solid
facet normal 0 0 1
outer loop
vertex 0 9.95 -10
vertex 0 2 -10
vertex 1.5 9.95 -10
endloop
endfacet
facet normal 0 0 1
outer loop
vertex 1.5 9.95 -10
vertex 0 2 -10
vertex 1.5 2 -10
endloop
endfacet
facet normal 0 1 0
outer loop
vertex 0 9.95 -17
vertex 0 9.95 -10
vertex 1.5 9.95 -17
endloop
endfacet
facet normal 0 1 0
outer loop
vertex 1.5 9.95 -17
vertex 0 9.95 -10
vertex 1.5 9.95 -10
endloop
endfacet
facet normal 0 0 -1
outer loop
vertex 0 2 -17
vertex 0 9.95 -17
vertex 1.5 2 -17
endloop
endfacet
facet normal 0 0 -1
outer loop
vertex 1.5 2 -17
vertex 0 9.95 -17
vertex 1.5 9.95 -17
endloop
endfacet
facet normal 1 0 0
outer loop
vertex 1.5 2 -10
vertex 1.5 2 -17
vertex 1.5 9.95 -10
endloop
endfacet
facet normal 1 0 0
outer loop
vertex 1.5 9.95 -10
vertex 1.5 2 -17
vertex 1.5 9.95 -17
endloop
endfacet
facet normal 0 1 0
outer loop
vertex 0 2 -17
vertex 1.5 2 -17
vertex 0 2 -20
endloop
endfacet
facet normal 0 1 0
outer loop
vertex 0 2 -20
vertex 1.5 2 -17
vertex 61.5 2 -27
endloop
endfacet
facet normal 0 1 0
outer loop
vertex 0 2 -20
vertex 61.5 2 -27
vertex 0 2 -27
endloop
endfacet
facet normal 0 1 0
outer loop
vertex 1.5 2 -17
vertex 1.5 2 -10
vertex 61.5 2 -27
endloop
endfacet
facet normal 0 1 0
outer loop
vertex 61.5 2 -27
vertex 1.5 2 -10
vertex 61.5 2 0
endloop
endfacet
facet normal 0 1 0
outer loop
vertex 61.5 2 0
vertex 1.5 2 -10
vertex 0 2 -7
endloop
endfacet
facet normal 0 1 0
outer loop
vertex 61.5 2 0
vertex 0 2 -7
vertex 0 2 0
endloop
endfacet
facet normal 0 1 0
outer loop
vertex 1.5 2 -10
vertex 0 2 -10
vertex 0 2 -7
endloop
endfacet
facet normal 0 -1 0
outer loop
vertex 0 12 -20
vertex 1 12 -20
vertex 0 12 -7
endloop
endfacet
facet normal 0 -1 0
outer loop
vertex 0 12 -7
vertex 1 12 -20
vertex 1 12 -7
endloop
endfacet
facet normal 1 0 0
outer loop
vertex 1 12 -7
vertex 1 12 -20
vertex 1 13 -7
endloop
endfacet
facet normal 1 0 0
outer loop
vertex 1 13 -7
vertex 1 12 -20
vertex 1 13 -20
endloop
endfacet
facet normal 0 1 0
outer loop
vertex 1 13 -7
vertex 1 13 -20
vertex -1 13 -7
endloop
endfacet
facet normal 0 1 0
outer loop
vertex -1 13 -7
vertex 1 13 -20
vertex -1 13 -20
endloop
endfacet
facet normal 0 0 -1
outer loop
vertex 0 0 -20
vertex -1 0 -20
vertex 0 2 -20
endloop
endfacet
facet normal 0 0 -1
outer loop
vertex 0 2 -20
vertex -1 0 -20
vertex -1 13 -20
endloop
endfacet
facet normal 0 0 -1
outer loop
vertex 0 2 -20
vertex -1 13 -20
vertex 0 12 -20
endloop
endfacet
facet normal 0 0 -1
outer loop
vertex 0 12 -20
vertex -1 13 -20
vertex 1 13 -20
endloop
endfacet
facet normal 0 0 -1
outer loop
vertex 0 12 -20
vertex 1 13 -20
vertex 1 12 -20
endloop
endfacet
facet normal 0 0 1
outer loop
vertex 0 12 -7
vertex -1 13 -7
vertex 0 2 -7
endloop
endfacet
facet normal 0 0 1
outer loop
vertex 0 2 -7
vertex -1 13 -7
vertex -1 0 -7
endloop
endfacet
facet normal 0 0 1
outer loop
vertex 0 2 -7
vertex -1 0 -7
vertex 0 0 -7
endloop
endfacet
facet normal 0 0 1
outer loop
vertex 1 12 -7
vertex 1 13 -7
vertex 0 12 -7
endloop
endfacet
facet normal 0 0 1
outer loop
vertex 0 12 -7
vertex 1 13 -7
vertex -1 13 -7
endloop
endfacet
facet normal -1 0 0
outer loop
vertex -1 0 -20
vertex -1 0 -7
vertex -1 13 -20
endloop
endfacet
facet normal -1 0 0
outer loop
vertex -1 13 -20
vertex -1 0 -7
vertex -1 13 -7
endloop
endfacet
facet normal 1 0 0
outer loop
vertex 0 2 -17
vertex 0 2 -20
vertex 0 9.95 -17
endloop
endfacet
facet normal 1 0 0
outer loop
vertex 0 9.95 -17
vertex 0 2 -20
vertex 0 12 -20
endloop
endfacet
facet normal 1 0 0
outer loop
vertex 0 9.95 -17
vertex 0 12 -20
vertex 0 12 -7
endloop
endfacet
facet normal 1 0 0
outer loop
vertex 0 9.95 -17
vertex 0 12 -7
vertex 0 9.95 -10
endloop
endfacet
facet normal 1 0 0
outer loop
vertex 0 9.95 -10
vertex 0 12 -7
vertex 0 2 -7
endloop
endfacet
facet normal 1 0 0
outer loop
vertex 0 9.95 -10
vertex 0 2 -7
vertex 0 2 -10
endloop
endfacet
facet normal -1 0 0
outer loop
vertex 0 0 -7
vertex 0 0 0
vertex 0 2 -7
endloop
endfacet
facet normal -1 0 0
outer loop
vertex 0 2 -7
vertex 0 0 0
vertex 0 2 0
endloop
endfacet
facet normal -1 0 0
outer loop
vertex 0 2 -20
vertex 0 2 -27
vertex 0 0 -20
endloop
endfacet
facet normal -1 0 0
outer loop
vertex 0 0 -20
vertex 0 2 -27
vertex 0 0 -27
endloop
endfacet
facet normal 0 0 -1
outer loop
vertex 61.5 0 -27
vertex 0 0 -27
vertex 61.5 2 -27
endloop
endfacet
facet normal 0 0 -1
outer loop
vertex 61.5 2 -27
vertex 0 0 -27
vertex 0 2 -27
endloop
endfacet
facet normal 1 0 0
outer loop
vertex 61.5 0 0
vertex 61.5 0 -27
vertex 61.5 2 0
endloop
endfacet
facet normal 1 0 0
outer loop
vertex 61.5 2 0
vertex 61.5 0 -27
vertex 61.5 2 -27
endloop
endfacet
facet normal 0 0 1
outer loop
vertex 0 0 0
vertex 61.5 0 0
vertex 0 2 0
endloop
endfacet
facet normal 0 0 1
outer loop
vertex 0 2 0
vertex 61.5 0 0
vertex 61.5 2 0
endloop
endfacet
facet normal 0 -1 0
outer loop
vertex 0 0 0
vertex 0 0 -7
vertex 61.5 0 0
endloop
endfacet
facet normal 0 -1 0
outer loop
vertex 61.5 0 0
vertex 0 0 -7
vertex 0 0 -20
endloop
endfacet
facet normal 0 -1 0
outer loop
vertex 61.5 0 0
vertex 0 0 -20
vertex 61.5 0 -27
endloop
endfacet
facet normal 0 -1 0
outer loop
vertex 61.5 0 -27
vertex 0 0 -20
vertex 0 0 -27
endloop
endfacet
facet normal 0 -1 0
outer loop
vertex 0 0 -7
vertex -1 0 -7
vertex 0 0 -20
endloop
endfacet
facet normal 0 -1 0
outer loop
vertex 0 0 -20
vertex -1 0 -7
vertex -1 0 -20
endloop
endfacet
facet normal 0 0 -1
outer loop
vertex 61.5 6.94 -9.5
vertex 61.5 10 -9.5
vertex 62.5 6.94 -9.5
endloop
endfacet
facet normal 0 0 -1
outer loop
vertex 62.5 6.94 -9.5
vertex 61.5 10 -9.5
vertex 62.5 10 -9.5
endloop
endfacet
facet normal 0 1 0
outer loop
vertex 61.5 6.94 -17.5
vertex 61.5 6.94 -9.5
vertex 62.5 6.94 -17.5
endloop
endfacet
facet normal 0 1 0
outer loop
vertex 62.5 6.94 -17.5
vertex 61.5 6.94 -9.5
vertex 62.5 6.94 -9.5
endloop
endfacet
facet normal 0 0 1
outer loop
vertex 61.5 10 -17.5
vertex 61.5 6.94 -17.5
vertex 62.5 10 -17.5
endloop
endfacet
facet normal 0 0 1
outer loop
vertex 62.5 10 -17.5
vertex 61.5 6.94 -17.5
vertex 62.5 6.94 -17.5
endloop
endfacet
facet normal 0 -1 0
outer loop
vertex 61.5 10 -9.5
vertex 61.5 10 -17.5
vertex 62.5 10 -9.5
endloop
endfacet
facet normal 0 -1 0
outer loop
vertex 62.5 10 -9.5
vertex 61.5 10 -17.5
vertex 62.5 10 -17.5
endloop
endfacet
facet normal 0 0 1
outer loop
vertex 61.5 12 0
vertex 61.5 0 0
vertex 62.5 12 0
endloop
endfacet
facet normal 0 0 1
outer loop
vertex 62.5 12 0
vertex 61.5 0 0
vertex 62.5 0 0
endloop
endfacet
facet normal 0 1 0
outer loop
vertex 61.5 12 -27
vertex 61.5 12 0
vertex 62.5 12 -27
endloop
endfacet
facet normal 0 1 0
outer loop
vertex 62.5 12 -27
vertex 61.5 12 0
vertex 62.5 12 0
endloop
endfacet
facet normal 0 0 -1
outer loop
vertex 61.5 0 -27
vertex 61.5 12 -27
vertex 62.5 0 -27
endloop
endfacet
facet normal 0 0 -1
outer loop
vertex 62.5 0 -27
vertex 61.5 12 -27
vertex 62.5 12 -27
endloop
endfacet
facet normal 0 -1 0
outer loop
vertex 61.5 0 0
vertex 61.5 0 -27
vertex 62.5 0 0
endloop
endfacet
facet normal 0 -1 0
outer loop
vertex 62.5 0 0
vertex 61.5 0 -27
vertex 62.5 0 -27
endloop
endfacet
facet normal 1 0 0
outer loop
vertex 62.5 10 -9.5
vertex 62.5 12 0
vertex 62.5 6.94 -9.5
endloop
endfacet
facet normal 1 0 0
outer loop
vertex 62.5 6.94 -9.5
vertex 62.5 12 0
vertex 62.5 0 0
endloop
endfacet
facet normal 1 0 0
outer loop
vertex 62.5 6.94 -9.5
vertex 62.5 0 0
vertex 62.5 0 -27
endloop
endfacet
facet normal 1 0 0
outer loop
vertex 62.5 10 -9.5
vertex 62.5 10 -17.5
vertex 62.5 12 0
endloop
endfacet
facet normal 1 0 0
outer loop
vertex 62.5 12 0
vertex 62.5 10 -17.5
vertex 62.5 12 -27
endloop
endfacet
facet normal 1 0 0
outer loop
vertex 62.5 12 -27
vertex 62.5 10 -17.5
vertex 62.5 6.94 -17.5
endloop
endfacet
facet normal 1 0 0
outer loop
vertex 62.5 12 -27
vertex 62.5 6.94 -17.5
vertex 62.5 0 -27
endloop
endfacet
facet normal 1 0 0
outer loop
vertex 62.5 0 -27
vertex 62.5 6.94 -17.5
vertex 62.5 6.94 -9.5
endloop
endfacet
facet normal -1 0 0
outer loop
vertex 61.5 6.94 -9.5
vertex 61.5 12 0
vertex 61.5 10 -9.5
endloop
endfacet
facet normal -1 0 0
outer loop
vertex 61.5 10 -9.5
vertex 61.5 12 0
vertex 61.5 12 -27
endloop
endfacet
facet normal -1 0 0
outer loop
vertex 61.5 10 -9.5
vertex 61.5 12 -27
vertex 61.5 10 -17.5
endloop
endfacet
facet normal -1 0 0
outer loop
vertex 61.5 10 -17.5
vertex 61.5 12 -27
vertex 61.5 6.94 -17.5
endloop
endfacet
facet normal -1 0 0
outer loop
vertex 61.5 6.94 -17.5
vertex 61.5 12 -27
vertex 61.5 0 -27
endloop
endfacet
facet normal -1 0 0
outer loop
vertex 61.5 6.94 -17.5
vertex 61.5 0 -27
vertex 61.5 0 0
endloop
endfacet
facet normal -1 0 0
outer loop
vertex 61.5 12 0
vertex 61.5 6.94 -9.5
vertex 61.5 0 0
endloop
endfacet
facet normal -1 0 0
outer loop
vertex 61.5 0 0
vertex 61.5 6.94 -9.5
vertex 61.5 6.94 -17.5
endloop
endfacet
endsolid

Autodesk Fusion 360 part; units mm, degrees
sketch "Sketch1" plane through (0, 0, 0) normal (0, 1, 0) x (1, 0, 0)
  line L0 (0, 27) -> (61.5, 27)
  line L1 (61.5, 27) -> (61.5, 0)
  line L2 (61.5, 0) -> (0, 0)
  line L3 (0, 0) -> (0, 27)
  dimension "d1" = 27
  dimension "d2" = 61.5
extrude "Extrude1" add sketch "Sketch1" along normal blind 2 makes body 1
sketch "Sketch2" plane through (61.5, 0, 0) normal (1, 0, 0) x (0, 0, -1)
  line L0 (0, 0) -> (27, 0)
  line L1 (27, 0) -> (27, 2)
  line L2 (27, 2) -> (0, 2)
  line L3 (0, 2) -> (0, 0)
  line L4 (0, 12) -> (27, 12)
  line L5 (27, 12) -> (27, 0)
  line L6 (27, 0) -> (0, 0)
  line L7 (0, 0) -> (0, 12)
  dimension "d5" = 10
extrude "Extrude2" add sketch "Sketch2" along normal blind 1 separate body makes body 2
sketch "Sketch3" plane through (62.5, 0, 0) normal (1, 0, 0) x (0, 0, -1)
  line L0 (0, 0) -> (27, 0)
  line L1 (27, 0) -> (27, 12)
  line L2 (27, 12) -> (0, 12)
  line L3 (0, 12) -> (0, 0)
  line L4 (9.5, 10) -> (17.5, 10)
  line L5 (17.5, 10) -> (17.5, 6.94)
  line L6 (17.5, 6.94) -> (9.5, 6.94)
  line L7 (9.5, 6.94) -> (9.5, 10)
  line L8 (13.5, 12) -> (13.5, 0) construction
  point P0 (13.5, 6.94)
  dimension "d8" = 8
  dimension "d9" = 3.06
  dimension "d10" = 2
extrude "Extrude3" cut sketch "Sketch3" against normal up to surface (1 mm away) contours L4 L5 L6 L7 bodies 2
sketch "Sketch5" plane through (0, 0, 0) normal (-1, 0, 0) x (0, 0, 1)
  line L0 (-27, 0) -> (0, 0)
  line L1 (0, 0) -> (0, 2)
  line L2 (0, 2) -> (-27, 2)
  line L3 (-27, 2) -> (-27, 0)
  line L4 (-20, 12) -> (-7, 12)
  line L5 (-7, 12) -> (-7, 0)
  line L6 (-7, 0) -> (-20, 0)
  line L7 (-20, 0) -> (-20, 12)
  line L8 (0, 12) -> (-27, 12) construction
  point P0 (-13.5, 0)
  dimension "d15" = 13
extrude "Extrude5" add sketch "Sketch5" along normal blind 1 contours L0 L2 L5 L6 L7 | L2 L4 L5 L7 bodies 1
sketch "Sketch6" plane through (0, 12, 0) normal (0, 1, 0) x (-1, 0, 0)
  line L0 (0, -7) -> (0, -20)
  line L1 (0, -20) -> (1, -20)
  line L2 (1, -20) -> (1, -7)
  line L3 (1, -7) -> (0, -7)
  line L4 (1, -20) -> (-1, -20)
  line L5 (-1, -20) -> (-1, -7)
  line L6 (-1, -7) -> (1, -7)
  line L7 (1, -7) -> (1, -20)
  dimension "d19" = 1
extrude "Extrude6" add sketch "Sketch6" along normal blind 1 bodies 1
sketch "Sketch7" plane through (0, 0, 0) normal (1, 0, 0) x (0, 0, -1)
  line L0 (7, 2) -> (20, 2)
  line L1 (20, 2) -> (20, 12)
  line L2 (20, 12) -> (7, 12)
  line L3 (7, 12) -> (7, 2)
  line L4 (10, 9.95) -> (17, 9.95)
  line L5 (17, 9.95) -> (17, 2)
  line L6 (17, 2) -> (10, 2)
  line L7 (10, 2) -> (10, 9.95)
  point P0 (13.5, 2)
  dimension "d22" = 2.05
  dimension "d23" = 7
extrude "Extrude7" add sketch "Sketch7" along normal blind 1.5 contours L0 L4 L5 L6 L7 bodies 1
